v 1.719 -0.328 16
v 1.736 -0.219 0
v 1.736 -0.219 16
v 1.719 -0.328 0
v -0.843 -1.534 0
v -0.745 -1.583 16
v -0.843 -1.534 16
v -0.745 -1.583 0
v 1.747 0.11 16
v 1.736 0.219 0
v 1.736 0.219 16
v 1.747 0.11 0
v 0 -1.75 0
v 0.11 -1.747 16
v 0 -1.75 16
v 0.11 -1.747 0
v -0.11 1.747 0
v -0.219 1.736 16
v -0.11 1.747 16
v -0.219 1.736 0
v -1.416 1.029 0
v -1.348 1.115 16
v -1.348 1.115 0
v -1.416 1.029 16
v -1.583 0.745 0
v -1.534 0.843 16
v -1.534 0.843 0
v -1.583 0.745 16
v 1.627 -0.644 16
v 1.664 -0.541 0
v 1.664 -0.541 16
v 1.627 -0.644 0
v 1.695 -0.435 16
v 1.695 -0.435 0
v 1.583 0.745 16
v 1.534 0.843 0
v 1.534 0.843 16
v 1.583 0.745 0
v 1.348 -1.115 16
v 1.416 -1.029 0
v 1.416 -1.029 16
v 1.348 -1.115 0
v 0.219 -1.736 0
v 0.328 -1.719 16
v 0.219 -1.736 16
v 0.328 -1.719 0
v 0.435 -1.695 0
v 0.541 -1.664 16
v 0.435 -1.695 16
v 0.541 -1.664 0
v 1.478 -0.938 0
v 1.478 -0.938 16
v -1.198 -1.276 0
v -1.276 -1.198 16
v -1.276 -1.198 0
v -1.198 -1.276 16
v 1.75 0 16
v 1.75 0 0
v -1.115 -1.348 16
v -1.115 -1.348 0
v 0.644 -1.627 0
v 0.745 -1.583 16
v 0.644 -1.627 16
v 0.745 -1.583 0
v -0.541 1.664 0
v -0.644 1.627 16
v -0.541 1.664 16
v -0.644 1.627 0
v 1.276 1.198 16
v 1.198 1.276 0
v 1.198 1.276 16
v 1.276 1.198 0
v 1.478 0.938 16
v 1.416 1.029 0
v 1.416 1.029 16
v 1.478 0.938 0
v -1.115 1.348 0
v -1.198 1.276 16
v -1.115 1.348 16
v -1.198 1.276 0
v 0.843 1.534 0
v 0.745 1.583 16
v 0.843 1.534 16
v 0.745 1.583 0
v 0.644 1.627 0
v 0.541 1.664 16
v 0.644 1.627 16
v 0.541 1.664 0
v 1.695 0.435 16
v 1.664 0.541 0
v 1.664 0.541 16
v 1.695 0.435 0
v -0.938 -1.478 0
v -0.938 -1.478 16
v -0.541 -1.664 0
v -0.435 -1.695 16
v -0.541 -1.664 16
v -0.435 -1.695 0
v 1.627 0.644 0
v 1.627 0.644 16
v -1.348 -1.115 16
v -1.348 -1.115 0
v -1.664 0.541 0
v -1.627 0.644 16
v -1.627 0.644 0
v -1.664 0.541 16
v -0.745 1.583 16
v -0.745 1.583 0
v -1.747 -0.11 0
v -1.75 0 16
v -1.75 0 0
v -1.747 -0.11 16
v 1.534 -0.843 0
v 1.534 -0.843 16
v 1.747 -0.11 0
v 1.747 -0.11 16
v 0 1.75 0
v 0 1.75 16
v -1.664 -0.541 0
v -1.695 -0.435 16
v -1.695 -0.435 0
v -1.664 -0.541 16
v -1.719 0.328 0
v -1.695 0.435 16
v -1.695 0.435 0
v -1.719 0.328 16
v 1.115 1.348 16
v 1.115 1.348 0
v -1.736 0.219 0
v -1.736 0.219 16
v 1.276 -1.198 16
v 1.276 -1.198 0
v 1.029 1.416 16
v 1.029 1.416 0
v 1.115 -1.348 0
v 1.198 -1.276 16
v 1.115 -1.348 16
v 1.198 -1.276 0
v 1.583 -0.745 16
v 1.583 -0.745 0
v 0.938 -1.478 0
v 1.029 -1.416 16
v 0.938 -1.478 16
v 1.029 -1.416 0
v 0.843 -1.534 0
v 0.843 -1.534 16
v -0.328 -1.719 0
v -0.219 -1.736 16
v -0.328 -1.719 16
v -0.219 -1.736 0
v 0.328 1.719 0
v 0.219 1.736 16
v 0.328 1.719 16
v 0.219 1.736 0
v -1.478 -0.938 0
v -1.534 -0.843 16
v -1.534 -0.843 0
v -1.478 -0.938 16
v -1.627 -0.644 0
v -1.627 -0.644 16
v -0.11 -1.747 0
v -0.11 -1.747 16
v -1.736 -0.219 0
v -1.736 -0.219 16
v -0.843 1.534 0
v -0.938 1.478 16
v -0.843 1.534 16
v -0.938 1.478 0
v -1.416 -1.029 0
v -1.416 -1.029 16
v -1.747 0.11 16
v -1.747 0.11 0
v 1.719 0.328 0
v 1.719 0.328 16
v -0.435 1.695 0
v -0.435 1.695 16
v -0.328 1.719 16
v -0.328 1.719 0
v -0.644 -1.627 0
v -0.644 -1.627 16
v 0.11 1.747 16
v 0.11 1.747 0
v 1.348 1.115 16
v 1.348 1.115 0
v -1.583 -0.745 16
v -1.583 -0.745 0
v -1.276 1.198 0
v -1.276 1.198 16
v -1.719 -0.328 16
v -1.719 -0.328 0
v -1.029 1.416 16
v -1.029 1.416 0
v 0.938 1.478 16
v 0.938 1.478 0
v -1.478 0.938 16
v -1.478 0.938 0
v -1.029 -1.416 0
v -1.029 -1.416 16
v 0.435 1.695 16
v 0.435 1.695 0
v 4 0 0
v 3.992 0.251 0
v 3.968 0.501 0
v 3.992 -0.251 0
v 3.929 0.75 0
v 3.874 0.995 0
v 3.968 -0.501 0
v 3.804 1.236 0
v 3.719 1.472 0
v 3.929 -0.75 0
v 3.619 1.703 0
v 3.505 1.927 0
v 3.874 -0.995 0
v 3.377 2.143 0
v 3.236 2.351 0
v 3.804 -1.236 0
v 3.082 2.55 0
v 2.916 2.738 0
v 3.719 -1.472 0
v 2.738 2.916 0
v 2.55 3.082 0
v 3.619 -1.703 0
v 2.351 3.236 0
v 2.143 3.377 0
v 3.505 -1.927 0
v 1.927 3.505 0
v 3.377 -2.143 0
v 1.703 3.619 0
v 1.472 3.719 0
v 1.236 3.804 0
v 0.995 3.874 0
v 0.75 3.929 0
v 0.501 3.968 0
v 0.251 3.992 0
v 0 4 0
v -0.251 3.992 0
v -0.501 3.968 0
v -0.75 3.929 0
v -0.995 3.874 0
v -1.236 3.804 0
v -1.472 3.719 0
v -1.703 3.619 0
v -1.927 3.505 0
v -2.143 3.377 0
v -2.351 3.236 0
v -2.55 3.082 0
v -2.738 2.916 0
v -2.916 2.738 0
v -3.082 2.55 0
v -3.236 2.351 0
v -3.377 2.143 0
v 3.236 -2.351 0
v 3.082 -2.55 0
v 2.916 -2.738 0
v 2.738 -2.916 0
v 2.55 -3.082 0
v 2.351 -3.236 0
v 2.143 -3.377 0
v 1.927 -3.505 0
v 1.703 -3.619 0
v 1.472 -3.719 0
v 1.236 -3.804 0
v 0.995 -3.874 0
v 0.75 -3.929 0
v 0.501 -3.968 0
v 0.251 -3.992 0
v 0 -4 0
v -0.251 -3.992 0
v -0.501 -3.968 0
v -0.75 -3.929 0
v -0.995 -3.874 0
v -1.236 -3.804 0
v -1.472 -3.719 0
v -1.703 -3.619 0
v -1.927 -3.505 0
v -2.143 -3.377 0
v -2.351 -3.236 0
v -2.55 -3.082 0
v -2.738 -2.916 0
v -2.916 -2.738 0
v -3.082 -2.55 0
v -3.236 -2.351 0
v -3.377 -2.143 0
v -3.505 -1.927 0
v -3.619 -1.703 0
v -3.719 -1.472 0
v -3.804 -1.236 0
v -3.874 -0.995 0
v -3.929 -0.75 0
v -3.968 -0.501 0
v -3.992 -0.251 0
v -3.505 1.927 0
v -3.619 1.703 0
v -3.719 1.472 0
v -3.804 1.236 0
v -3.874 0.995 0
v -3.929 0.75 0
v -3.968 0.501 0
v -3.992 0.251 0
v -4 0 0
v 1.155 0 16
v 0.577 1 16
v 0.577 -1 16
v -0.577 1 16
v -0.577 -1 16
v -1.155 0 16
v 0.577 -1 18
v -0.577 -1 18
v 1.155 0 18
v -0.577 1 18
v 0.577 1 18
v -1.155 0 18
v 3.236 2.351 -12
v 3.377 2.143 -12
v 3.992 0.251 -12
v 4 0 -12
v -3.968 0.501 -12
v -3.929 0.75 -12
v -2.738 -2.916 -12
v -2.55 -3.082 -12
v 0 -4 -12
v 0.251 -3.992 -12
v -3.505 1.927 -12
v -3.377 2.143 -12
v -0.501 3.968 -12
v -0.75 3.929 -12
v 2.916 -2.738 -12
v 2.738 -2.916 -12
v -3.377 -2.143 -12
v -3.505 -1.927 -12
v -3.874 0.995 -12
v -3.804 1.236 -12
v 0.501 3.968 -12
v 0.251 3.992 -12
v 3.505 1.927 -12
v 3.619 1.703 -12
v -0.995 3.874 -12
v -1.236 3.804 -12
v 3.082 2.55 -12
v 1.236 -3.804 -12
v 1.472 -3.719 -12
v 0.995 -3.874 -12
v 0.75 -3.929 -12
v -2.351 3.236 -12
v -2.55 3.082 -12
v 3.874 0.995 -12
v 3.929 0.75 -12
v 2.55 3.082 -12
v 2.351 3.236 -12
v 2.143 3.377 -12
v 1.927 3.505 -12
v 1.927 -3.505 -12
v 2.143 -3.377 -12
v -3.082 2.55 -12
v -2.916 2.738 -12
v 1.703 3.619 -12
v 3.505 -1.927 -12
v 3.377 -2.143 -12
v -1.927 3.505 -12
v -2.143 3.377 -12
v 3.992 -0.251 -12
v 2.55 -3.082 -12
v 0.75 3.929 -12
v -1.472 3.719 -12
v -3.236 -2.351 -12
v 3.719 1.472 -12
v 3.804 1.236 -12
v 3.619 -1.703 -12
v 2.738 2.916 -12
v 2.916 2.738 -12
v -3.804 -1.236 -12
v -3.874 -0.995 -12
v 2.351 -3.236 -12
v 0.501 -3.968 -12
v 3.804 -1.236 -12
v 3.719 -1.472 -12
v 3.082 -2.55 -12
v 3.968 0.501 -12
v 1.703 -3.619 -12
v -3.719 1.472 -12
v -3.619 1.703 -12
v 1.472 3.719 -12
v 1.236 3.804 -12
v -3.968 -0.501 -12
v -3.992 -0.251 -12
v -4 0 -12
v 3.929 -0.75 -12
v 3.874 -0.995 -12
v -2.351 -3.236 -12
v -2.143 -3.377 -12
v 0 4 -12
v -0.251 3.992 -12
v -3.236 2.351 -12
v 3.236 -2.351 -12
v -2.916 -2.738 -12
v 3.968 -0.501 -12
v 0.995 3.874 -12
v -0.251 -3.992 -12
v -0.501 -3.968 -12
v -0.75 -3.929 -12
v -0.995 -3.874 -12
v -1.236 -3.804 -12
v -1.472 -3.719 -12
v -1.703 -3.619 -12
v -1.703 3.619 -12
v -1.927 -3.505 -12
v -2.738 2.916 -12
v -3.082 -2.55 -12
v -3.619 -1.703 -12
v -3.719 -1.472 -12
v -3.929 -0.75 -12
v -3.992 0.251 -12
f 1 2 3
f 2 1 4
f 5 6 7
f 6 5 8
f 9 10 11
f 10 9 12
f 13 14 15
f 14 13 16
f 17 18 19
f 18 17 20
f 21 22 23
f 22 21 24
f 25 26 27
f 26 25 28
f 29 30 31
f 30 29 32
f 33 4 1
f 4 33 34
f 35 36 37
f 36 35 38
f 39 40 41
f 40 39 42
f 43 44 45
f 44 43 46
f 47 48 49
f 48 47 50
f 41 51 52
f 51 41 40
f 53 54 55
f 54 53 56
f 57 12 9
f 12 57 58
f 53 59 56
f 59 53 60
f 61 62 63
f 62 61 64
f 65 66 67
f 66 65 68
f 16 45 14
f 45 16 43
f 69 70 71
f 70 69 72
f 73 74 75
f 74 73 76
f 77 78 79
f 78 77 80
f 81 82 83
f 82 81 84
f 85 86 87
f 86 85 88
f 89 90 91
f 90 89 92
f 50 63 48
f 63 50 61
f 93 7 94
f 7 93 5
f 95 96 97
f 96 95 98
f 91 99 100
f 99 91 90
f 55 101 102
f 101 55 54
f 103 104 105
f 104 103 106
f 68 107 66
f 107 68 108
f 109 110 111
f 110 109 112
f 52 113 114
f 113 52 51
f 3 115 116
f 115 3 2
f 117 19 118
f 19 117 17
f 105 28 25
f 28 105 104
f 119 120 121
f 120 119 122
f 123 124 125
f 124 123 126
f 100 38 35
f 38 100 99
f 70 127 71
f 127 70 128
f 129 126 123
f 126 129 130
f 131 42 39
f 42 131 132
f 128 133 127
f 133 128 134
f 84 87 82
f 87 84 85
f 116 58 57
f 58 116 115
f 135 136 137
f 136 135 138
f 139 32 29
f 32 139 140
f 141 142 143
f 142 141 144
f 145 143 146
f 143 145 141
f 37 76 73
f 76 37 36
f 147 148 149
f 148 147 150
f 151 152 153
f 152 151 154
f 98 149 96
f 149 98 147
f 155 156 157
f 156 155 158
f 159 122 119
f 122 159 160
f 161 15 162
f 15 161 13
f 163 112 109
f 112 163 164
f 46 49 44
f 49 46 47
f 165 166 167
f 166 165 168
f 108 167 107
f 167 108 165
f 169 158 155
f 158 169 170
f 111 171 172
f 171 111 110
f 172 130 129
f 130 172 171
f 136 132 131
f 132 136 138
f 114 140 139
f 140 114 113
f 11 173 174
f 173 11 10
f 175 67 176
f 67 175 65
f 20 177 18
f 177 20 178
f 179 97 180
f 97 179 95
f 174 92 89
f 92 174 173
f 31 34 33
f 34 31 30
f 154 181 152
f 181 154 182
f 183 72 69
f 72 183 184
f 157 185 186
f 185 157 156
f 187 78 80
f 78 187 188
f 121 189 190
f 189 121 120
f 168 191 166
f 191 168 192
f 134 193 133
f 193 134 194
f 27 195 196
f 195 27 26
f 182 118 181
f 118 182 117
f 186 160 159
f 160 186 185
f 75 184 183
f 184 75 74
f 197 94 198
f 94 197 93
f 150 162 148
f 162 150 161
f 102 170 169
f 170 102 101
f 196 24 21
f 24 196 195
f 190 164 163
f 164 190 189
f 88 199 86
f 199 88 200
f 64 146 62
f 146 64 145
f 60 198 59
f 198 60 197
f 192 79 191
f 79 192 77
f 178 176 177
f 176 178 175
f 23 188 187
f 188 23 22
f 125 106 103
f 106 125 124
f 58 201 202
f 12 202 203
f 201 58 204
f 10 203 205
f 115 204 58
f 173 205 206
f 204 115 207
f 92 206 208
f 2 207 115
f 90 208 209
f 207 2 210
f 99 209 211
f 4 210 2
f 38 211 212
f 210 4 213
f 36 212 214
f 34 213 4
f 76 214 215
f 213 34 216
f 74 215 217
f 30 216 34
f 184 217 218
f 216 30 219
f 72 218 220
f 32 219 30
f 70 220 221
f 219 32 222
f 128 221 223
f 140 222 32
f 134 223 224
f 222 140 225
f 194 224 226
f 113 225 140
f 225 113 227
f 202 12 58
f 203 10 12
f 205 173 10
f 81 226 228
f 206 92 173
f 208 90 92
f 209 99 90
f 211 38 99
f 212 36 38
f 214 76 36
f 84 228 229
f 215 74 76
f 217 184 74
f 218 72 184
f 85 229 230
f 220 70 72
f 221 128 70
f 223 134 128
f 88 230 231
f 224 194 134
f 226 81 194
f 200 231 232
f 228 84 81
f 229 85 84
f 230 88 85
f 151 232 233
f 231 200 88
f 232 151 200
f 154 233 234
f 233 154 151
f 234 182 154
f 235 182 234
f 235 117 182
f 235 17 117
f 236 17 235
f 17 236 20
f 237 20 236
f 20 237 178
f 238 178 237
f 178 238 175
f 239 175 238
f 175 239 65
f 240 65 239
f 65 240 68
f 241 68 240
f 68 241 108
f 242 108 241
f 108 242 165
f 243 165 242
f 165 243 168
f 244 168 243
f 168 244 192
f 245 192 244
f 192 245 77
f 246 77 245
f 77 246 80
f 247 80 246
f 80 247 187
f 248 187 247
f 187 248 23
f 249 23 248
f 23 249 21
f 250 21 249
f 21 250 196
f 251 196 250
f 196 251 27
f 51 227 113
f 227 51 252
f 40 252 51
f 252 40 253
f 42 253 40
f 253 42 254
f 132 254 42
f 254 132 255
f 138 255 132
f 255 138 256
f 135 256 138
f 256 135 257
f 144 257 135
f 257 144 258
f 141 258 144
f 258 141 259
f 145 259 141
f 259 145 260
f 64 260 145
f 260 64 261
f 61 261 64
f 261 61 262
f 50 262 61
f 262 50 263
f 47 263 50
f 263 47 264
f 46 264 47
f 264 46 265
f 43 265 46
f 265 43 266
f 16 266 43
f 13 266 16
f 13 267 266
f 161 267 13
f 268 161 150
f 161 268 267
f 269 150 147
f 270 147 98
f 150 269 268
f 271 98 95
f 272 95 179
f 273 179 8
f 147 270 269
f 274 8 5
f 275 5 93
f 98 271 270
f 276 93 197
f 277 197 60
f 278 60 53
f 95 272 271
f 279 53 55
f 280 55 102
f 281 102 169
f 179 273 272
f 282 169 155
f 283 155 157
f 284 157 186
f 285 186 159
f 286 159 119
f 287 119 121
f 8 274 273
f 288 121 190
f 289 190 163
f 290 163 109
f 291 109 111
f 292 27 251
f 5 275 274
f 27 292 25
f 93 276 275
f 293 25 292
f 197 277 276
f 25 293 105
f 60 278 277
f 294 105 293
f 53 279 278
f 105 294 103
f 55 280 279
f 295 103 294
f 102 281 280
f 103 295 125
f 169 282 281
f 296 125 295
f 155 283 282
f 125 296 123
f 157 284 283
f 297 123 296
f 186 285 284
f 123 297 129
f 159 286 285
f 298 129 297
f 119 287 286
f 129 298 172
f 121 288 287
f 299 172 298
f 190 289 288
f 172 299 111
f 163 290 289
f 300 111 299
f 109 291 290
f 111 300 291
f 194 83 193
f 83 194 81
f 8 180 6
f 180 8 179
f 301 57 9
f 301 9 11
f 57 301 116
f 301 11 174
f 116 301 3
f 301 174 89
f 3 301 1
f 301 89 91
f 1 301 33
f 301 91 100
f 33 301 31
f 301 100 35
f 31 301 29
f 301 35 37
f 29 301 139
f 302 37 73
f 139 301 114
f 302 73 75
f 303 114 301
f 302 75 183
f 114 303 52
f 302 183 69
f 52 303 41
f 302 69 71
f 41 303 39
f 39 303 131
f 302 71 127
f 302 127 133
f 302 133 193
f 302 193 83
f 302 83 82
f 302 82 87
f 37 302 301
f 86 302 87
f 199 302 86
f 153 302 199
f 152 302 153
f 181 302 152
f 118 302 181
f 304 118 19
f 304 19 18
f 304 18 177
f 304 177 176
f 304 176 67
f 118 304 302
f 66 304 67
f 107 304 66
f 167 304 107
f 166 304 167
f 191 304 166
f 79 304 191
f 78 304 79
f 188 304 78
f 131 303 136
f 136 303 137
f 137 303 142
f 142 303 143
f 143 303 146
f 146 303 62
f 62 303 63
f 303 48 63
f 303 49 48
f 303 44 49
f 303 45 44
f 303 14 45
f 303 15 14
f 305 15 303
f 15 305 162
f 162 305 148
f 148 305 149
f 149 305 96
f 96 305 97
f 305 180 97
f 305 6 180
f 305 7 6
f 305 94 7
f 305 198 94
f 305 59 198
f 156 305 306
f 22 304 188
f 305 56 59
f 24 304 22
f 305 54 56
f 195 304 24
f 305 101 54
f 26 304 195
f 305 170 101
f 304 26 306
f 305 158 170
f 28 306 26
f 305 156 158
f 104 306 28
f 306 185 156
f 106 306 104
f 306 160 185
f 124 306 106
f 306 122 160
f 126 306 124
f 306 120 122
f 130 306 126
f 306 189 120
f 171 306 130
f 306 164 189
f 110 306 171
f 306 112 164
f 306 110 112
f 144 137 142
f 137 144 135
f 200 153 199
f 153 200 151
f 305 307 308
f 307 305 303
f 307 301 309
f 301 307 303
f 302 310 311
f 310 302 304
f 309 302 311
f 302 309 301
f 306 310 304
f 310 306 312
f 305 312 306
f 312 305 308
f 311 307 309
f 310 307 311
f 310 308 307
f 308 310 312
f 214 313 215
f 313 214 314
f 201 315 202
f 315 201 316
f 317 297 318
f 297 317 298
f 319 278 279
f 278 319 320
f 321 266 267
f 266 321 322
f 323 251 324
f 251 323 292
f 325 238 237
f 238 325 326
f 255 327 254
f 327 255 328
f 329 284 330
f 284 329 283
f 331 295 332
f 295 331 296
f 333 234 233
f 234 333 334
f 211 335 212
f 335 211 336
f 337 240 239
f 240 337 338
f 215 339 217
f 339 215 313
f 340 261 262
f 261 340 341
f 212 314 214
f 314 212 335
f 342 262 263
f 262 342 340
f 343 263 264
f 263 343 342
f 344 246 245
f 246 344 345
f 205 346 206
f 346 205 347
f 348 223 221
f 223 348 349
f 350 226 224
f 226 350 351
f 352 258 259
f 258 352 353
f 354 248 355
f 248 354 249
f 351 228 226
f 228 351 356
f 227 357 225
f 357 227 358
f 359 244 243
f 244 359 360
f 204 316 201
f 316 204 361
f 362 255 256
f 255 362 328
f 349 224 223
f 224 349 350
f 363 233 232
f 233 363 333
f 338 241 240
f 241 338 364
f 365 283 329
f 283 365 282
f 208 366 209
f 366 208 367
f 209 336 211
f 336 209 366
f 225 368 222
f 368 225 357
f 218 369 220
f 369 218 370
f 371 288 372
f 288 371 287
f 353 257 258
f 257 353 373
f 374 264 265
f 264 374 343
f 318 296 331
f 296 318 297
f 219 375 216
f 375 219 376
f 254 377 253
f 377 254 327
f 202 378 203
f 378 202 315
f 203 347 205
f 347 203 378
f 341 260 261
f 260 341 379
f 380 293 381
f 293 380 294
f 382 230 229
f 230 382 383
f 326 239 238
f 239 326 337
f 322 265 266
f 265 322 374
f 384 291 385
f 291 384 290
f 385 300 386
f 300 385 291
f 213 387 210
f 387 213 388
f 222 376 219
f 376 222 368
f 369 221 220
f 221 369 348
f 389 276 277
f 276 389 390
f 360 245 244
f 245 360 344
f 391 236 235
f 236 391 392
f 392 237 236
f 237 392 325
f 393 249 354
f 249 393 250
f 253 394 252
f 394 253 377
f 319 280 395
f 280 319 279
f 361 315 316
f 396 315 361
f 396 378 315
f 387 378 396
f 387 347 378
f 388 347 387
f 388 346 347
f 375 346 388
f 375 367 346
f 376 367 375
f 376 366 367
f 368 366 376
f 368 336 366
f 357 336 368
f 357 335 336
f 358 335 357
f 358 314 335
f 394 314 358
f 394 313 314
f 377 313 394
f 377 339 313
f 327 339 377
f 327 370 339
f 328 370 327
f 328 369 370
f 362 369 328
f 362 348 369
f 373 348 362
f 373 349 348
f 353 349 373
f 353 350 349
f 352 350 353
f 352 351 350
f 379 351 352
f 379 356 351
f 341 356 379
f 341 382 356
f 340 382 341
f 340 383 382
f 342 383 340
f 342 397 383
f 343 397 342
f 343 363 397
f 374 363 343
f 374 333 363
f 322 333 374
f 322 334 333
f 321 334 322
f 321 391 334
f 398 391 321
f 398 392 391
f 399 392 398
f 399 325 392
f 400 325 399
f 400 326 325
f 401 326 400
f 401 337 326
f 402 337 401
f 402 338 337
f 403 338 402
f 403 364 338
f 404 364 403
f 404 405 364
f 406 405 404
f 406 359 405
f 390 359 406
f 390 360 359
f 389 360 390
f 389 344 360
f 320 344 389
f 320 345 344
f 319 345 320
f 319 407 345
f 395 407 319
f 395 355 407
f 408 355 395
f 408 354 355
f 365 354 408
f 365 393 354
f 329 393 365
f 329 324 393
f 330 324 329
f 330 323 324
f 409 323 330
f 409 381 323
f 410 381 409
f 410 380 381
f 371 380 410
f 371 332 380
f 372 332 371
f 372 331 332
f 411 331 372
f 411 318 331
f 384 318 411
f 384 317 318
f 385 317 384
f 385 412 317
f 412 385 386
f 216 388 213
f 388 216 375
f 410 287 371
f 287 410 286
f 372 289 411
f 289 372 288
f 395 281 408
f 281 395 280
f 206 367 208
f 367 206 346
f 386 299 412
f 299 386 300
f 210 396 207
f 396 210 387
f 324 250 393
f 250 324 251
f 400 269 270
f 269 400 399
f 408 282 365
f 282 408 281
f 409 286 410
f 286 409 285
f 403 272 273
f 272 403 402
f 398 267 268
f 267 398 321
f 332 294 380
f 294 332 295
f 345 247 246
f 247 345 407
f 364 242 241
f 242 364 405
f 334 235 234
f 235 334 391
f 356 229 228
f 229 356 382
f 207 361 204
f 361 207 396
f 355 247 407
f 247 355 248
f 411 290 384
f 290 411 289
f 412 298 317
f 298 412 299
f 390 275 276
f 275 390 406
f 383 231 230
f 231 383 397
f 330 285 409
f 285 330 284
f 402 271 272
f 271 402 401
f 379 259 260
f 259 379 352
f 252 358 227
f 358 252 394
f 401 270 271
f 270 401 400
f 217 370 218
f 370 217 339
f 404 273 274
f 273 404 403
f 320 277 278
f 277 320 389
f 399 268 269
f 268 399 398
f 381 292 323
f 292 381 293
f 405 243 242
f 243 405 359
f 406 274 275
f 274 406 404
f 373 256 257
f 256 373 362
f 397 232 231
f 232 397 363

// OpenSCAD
$fn=100;
module tl_key(){
    cylinder(r=3.5/2, h=16);
    cylinder(r=2/sqrt(3), h=18, $fn=6);
    translate([0,0,-12]) cylinder(r=4, h=12);
}

tl_key();
